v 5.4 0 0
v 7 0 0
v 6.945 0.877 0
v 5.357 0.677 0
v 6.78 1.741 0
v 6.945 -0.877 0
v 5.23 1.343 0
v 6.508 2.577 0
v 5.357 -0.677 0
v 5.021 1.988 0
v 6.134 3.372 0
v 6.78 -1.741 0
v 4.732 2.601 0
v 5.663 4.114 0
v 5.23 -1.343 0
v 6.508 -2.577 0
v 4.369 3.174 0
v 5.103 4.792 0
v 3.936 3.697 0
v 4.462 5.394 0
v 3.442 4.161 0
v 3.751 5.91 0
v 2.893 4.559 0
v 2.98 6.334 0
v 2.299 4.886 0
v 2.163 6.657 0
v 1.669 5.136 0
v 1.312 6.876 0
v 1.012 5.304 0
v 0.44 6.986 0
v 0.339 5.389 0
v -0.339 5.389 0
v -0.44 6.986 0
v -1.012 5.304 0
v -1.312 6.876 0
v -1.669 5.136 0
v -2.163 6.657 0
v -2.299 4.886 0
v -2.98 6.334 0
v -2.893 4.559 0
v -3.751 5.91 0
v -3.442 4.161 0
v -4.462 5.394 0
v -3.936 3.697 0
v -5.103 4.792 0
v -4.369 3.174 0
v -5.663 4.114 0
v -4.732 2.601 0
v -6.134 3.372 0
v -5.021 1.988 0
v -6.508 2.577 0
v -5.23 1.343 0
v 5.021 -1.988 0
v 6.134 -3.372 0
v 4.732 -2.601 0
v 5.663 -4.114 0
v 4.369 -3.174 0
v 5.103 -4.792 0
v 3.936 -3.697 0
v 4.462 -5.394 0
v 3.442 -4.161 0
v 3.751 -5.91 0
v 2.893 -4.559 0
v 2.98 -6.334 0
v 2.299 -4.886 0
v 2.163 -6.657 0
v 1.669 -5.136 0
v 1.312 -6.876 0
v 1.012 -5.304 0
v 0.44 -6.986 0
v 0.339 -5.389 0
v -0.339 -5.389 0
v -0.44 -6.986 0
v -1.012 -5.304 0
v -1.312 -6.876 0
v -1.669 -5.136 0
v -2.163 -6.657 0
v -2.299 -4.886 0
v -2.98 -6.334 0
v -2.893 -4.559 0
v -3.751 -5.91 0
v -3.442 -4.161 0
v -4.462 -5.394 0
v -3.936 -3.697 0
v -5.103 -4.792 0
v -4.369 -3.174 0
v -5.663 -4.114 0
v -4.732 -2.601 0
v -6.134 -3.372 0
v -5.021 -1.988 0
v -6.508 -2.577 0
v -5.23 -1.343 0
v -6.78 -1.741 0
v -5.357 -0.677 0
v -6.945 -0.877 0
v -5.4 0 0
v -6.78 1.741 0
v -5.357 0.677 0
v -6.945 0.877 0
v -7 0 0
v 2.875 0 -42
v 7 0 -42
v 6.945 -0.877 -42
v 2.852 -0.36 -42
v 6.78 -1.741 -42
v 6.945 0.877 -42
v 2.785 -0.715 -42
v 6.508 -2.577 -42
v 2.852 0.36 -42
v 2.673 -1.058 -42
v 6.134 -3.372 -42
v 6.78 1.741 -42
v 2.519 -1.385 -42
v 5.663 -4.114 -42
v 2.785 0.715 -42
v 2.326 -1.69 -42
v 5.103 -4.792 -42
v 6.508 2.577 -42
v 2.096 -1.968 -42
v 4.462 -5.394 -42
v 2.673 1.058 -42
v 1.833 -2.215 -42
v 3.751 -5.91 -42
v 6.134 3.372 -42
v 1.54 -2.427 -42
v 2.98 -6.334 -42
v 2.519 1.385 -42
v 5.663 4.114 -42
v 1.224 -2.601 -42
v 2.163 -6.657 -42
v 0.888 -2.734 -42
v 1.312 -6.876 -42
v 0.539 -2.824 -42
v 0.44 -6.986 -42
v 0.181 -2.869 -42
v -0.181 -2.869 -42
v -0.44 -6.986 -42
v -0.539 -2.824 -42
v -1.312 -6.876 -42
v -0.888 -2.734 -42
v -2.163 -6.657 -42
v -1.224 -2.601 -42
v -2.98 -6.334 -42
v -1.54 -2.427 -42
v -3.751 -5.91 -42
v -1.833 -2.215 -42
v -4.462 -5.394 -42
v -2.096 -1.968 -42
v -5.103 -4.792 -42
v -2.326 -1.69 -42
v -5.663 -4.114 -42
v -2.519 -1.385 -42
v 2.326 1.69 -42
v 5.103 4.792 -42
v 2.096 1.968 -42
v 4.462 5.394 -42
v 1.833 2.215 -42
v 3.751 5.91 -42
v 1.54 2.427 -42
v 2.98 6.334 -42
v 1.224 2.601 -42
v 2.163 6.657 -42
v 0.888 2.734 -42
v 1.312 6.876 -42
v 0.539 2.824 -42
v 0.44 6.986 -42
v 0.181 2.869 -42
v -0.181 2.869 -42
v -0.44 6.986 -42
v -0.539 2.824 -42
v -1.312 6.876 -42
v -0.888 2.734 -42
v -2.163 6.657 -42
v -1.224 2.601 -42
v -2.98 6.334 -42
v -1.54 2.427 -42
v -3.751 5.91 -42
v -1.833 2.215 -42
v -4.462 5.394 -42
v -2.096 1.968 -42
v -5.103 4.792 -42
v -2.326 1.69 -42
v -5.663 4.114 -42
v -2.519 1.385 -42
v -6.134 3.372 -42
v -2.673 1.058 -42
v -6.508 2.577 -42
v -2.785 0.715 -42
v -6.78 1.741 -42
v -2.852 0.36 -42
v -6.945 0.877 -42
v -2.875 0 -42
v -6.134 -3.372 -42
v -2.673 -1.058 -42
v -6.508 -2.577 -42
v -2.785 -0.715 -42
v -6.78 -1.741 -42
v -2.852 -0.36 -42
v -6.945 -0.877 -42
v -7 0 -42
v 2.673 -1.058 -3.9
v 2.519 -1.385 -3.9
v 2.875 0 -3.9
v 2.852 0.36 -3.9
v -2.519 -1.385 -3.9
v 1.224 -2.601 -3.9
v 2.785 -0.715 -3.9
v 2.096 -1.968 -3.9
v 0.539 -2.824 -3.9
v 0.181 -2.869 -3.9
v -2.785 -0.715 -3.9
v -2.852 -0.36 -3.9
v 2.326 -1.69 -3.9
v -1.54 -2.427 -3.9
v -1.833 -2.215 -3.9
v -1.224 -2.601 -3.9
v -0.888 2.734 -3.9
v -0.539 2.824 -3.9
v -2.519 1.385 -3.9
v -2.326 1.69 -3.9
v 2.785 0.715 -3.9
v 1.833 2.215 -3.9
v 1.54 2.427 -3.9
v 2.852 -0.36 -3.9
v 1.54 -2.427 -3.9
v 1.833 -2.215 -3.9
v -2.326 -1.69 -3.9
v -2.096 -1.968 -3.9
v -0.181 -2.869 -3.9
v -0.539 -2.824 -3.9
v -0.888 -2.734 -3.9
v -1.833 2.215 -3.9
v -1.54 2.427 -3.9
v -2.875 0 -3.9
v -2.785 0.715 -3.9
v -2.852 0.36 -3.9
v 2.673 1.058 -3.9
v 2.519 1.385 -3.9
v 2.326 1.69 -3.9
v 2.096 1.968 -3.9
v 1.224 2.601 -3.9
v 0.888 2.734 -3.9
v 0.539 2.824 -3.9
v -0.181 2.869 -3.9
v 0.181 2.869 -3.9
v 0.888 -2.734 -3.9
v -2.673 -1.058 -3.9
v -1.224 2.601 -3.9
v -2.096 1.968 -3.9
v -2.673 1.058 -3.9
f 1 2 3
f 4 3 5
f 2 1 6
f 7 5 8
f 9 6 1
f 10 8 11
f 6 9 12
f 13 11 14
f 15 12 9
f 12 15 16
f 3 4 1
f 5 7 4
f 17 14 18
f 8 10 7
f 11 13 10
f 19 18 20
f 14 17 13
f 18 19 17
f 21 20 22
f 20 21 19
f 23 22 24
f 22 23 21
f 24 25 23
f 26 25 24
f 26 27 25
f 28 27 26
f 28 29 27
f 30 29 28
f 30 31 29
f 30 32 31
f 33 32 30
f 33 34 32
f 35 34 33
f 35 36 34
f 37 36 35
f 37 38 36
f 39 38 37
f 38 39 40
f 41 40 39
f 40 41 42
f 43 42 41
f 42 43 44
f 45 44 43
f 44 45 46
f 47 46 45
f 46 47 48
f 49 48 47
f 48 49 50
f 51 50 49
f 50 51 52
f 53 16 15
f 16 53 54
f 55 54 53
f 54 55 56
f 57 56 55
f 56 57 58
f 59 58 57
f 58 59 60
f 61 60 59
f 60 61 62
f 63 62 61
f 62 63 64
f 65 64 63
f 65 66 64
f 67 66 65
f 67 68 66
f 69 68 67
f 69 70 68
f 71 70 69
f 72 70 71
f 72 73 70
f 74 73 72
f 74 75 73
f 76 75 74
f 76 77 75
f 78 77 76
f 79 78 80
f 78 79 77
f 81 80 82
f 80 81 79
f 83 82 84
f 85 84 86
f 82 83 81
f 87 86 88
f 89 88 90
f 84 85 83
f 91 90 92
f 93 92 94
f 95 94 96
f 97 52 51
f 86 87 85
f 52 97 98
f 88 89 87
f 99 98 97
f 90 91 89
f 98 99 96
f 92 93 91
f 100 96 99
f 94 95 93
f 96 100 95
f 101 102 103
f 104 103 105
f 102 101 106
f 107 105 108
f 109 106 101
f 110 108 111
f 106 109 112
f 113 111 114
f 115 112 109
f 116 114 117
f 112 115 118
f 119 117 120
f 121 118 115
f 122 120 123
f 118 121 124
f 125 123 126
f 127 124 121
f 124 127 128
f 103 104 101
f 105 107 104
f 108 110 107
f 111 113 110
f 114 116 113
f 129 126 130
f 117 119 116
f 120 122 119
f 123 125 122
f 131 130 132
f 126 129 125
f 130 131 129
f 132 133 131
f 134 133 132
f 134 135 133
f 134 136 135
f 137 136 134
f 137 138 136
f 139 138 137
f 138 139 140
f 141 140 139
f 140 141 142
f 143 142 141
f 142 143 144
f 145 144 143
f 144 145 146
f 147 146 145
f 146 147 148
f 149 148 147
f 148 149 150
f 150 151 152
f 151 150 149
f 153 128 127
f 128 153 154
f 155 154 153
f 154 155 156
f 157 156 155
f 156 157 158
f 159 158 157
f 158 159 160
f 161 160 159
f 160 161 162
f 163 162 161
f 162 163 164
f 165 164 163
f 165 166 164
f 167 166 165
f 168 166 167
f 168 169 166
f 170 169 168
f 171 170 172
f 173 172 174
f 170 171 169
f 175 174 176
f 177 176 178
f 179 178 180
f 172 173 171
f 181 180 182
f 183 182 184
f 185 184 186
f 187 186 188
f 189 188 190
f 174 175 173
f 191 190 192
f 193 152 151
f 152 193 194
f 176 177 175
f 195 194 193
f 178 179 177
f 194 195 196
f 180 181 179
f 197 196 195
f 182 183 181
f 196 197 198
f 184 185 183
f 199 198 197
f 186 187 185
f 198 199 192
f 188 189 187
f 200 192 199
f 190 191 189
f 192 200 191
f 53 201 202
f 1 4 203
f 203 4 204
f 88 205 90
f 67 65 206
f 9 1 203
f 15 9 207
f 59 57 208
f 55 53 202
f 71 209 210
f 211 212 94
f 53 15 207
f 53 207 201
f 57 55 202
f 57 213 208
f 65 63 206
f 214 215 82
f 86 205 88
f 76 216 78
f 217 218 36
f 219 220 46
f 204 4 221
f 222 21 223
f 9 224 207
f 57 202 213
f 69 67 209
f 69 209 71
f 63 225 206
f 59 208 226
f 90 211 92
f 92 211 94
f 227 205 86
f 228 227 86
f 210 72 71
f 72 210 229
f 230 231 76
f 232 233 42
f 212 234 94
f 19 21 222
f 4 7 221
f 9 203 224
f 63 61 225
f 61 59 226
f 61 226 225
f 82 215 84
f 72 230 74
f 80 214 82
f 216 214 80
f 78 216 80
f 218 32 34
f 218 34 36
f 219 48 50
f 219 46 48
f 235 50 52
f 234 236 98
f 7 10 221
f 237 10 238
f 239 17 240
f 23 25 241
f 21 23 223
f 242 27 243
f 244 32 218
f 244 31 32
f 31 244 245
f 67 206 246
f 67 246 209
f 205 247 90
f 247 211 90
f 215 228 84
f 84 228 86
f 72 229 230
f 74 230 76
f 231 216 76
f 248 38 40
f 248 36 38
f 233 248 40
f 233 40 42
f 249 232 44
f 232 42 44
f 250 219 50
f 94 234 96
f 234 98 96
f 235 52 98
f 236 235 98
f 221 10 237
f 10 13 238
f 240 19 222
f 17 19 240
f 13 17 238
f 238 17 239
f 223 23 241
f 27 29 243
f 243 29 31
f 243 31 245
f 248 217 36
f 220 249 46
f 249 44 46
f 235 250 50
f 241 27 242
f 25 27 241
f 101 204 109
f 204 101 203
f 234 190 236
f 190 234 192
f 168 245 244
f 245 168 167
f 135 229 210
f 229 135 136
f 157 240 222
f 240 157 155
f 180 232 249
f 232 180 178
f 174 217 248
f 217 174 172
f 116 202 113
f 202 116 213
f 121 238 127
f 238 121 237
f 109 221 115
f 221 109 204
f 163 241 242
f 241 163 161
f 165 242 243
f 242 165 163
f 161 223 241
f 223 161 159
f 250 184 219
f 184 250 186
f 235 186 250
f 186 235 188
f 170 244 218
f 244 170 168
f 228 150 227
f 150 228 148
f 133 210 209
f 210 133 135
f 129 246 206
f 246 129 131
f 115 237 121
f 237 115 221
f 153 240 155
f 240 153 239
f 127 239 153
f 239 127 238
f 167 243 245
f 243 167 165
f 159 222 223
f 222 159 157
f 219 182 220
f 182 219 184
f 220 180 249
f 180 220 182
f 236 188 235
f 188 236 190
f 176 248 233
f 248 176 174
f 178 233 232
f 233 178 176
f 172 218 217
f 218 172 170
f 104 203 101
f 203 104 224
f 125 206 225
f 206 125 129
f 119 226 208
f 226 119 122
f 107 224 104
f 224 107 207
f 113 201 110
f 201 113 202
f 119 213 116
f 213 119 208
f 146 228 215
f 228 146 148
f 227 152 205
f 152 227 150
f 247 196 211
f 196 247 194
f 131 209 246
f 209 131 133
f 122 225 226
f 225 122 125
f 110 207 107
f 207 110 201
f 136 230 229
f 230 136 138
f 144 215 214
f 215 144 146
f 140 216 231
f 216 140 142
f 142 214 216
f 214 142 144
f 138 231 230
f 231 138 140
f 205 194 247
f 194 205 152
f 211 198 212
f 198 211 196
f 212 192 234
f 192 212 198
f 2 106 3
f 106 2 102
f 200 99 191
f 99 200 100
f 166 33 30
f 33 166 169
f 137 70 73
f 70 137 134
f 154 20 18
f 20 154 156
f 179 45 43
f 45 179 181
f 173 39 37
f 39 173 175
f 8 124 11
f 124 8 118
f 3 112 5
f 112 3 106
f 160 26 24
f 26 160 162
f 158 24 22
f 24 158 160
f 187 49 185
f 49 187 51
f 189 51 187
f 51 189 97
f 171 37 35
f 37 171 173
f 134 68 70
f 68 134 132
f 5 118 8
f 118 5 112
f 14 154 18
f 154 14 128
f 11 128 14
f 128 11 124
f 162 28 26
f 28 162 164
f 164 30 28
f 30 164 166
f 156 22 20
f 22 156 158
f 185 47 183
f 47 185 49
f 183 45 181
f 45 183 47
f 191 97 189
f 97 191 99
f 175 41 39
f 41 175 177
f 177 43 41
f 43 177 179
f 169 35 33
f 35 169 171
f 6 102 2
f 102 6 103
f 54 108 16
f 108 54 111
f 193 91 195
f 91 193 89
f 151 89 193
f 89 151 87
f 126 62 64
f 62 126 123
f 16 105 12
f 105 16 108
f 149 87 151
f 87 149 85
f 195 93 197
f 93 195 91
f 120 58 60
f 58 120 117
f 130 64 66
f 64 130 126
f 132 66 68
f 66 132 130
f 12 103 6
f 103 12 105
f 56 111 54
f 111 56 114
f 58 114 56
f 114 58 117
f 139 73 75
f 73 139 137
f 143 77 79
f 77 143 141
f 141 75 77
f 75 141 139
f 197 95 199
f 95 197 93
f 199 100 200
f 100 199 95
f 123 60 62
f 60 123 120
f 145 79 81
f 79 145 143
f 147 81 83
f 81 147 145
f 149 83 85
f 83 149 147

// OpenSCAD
$fn = 50;


difference() {
	union() {
		translate(v = [0, 0, -42.0000000000]) {
			cylinder(h = 42, r = 7.0000000000);
		}
	}
	union() {
		translate(v = [0, 0, 0]) {
			rotate(a = [0, 0, 0]) {
				difference() {
					union() {
						#translate(v = [0, 0, -42.0000000000]) {
							cylinder(h = 42, r = 2.6000000000);
						}
						#translate(v = [0, 0, -3.9000000000]) {
							cylinder(h = 3.9000000000, r = 7.0000000000, r1 = 2.8750000000, r2 = 5.4000000000);
						}
						#translate(v = [0, 0, -42.0000000000]) {
							cylinder(h = 42, r = 2.8750000000);
						}
						#translate(v = [0, 0, -42.0000000000]) {
							cylinder(h = 42, r = 2.6000000000);
						}
					}
					union();
				}
			}
		}
	}
}
